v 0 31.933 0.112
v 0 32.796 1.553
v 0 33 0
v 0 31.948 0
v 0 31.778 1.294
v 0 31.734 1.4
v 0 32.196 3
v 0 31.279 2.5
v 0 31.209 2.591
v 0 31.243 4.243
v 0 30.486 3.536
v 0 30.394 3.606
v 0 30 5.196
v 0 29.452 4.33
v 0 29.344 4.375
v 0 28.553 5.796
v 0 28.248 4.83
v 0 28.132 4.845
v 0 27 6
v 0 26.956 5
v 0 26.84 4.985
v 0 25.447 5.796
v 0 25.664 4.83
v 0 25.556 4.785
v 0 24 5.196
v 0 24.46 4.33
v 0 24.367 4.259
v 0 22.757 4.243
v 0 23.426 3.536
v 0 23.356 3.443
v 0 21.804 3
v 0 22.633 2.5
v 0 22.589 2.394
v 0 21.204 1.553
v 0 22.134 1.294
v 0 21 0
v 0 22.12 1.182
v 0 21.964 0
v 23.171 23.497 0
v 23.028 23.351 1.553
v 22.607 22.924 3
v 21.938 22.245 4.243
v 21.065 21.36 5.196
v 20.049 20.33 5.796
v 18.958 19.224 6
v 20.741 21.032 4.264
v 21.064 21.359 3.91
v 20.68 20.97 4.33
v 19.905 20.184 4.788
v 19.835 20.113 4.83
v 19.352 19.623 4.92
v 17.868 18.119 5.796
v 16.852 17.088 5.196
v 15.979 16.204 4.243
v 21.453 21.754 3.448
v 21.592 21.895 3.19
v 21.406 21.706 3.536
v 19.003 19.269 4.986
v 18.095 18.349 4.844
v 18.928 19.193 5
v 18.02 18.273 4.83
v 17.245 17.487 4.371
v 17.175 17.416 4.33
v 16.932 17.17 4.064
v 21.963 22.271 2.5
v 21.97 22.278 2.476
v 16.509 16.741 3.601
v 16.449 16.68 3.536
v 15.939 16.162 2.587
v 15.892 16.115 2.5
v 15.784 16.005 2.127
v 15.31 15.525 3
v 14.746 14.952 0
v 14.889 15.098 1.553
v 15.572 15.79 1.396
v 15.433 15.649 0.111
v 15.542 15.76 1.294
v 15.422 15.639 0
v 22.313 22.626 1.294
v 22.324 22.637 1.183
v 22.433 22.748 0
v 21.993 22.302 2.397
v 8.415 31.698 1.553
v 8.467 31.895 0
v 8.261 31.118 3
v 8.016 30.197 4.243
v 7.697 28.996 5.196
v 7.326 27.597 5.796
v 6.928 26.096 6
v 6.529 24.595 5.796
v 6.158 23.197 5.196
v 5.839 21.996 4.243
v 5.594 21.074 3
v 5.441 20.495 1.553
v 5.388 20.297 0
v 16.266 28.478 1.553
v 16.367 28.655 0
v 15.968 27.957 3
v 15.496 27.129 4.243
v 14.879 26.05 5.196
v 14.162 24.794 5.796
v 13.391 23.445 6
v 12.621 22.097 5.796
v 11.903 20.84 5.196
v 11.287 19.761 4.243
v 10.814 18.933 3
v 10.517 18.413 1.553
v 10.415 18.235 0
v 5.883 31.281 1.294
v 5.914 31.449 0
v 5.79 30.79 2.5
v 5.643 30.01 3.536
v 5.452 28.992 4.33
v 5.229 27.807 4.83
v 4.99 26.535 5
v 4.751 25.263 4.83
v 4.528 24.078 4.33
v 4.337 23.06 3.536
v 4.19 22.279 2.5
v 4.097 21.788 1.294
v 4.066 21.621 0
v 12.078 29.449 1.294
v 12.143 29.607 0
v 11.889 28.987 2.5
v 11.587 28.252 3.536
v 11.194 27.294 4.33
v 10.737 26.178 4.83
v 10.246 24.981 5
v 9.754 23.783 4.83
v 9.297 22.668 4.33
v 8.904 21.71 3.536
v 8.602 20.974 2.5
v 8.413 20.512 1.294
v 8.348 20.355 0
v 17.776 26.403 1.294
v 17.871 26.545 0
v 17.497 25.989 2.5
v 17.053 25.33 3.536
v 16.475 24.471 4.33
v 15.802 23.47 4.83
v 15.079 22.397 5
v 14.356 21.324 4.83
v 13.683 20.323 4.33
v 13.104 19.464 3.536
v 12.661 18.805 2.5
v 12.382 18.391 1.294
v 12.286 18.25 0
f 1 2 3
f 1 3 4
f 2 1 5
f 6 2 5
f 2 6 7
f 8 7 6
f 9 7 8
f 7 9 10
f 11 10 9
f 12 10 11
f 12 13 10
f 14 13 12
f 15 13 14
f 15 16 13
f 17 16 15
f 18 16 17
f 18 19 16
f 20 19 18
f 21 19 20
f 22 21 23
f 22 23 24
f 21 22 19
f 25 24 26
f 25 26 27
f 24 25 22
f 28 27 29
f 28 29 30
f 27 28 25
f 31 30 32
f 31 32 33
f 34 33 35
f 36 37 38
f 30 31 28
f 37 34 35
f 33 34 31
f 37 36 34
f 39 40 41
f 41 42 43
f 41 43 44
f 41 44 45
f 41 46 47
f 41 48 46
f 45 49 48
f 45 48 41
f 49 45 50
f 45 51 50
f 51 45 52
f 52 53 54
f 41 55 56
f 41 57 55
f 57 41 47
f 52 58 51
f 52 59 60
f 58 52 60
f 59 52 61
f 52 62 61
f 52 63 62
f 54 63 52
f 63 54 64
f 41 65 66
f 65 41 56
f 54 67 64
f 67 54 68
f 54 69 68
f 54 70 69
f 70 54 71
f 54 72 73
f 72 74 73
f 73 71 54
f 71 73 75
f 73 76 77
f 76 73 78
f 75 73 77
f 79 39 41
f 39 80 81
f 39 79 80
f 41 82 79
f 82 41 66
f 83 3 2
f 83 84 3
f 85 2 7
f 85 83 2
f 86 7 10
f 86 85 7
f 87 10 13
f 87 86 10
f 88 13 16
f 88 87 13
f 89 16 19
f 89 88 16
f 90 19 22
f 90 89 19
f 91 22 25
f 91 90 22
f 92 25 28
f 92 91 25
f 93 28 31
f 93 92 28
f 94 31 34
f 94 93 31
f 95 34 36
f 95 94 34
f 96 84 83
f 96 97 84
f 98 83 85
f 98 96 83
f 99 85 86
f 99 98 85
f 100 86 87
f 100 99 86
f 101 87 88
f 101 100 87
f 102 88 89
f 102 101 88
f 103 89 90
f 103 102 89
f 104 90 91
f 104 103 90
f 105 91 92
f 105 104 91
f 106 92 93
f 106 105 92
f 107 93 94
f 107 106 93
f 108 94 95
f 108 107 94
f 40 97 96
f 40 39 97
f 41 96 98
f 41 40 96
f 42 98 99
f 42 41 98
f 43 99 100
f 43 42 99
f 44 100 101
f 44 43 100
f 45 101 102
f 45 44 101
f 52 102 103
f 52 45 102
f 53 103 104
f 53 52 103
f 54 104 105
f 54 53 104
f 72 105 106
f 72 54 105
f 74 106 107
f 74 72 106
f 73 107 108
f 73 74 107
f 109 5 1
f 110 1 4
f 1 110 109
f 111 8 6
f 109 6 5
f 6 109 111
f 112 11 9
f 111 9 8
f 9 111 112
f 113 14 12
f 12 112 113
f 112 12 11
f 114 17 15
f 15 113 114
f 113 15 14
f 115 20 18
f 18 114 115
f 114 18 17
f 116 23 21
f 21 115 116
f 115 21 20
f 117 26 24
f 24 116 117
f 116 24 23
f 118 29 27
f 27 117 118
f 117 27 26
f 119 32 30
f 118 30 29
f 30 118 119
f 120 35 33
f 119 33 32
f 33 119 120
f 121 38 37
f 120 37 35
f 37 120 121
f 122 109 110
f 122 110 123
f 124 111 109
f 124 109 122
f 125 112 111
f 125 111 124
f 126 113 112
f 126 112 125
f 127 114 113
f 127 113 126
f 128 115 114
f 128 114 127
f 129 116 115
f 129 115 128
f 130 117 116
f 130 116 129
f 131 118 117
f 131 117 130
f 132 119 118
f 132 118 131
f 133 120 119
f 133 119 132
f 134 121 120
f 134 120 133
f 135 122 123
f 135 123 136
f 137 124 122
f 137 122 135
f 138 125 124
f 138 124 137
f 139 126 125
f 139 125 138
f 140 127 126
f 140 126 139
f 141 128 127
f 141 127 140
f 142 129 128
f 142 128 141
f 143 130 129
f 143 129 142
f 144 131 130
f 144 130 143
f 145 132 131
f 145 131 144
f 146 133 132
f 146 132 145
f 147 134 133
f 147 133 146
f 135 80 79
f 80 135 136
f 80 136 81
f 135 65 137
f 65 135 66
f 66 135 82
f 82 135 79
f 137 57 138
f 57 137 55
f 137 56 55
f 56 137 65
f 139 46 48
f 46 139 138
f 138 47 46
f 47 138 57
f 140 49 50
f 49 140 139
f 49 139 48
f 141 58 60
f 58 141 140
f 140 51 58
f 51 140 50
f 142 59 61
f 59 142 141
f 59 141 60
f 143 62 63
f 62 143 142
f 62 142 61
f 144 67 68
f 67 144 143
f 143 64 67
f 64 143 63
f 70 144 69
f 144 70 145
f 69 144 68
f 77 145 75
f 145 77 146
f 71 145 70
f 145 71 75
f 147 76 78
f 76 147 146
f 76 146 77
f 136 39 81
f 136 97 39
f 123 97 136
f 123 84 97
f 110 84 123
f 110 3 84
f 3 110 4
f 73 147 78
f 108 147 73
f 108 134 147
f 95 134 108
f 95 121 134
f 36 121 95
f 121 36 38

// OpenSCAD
// file: ../build_environments.scad
// build_environments.scad: modules to build level sections
//

module pool(diameter=10.0, wall_height=2.0, step_width=3.0, connections=[])
{
    difference() {
        union() {
        difference() {
            cylinder(h=0.5,r1=diameter+step_width,r2=diameter+step_width,$fn=48);
            translate([0,0,-0.1])
                cylinder(h=0.7,r1=diameter,r2=diameter,$fn=48);
        }
        difference() {
            cylinder(h=wall_height,r1=diameter+step_width+1.0,r2=diameter+step_width+1.0,$fn=48);
            translate([0,0,-0.1])
                cylinder(h=wall_height+0.2,r1=diameter+step_width,r2=diameter+step_width,$fn=48);
        }
        }
    
        for (c = connections)
        {
            rotate([0,90,0]) {
                angle = atan2(c[1],c[0]);
                rotate([-angle,0,0]) {
                    cylinder(h=diameter+5.0,r1=c[2],r2=c[2],$fn=48);
                }
            }
        }
    }
}

module straight(length=10.0, width=2.0, dy1=0.0, dy2=0.0, dz=0.0)
{
    dims = [0, 0, 0, 0, 0, (dz/length)];
    matrix = [
        [ 1, dims[0], dims[1], 0 ],
        [ dims[2], 1, dims[4], 0 ],
        [ dims[5], dims[3], 1, 0 ],
        [ 0, 0, 0, 1 ]
    ];
    multmatrix(matrix)
    difference() {
        translate([dy1,0,0])
        union() {
            rotate([0,90,0]) {
                difference() {
                    cylinder(h=(length-dy1-dy2),r1=width+1.0,r2=width+1.0,$fn=24);
                    translate([0,0,-0.1])
                        cylinder(h=(length-dy1-dy2+0.2),r1=width,r2=width,$fn=24);
                }
                difference() {
                    cylinder(h=1.0,r1=width+2.0,r2=width+2.0,$fn=24);
                    translate([0,0,-0.1])
                        cylinder(h=1.2,r1=width,r2=width,$fn=24);
                }
                translate([0,0,(length-dy1-dy2)-1.0]) {
                    difference() {
                        cylinder(h=1.0,r1=width+2.0,r2=width+2.0,$fn=24);
                        translate([0,0,-0.1])
                            cylinder(h=1.2,r1=width,r2=width,$fn=24);
                    }
                }
            }
        }
        translate([0,0,-(2*width+4.0)/2])
            cube([3*length,3*length,2*width+4.0],center=true);
    }
}

module curve(p0=[0,0], center=[0,0], dir=1, angle=0.0, width=2.0)
{
    radius = sqrt((p0[0]-center[0])*(p0[0]-center[0]) + (p0[1]-center[1])*(p0[1]-center[1]));
    if (dir == 0) {
        difference() {
            rotate([0,0,-90])
            difference() {
                rotate_extrude(angle = angle, convexity = 10, $fn=32)
                    translate([radius, 0, 0])
                        circle(r = width+1.0,$fn=24);
                rotate([0,0,-1.0])
                    rotate_extrude(angle = angle+2.0, convexity = 10, $fn=32)
                        translate([radius, 0, 0])
                            circle(r = width,$fn=24);
            }
            translate([0,0,-(2*width+4.0)/2])
                cube([5*radius,5*radius,2*width+4.0],center=true);
        }
    }
    else {
        difference() {
            rotate([0,0,90])
            difference() {
                rotate_extrude(angle = -angle, convexity = 10, $fn=32)
                    translate([radius, 0, 0])
                        circle(r = width+1.0,$fn=24);
                rotate([0,0,1.0])
                    rotate_extrude(angle = -angle-2.0, convexity = 10, $fn=32)
                        translate([radius, 0, 0])
                            circle(r = width,$fn=24);
            }
            translate([0,0,-(2*width+4.0)/2])
                cube([5*radius,5*radius,2*width+4.0],center=true);
        }
    }

}

// test pool
//pool(diameter=12.0000, wall_height=3.0000, step_width=3.0000, connections=[[0.0000,-26.0000,2.0000], [23.6074,0.0000,2.0000]]);

// test straight, slope
//straight(length=26.0000, width=2.0000, dy1=11.8322, dy2=6.7082, dz=0.0000);
//straight(length=29.1549, width=12.0000, dy1=0.0000, dy2=0.0000, dz=-15.0000);

// test curve
//curve(p0=[23.6074, 0.0000], center=[23.6074, 5.0000], dir=0, angle=60.1011, width=2.0000);
//curve(p0=[33.6426, 12.4219], center=[37.9771, 9.9295], dir=1, angle=120.4627, width=2.0000);
// main file
use <../build_environments.scad>;
curve(p0=[-28.0019, -196.2146], center=[-32.1313, -169.5322], dir=1, angle=44.6008, width=5.0000);
